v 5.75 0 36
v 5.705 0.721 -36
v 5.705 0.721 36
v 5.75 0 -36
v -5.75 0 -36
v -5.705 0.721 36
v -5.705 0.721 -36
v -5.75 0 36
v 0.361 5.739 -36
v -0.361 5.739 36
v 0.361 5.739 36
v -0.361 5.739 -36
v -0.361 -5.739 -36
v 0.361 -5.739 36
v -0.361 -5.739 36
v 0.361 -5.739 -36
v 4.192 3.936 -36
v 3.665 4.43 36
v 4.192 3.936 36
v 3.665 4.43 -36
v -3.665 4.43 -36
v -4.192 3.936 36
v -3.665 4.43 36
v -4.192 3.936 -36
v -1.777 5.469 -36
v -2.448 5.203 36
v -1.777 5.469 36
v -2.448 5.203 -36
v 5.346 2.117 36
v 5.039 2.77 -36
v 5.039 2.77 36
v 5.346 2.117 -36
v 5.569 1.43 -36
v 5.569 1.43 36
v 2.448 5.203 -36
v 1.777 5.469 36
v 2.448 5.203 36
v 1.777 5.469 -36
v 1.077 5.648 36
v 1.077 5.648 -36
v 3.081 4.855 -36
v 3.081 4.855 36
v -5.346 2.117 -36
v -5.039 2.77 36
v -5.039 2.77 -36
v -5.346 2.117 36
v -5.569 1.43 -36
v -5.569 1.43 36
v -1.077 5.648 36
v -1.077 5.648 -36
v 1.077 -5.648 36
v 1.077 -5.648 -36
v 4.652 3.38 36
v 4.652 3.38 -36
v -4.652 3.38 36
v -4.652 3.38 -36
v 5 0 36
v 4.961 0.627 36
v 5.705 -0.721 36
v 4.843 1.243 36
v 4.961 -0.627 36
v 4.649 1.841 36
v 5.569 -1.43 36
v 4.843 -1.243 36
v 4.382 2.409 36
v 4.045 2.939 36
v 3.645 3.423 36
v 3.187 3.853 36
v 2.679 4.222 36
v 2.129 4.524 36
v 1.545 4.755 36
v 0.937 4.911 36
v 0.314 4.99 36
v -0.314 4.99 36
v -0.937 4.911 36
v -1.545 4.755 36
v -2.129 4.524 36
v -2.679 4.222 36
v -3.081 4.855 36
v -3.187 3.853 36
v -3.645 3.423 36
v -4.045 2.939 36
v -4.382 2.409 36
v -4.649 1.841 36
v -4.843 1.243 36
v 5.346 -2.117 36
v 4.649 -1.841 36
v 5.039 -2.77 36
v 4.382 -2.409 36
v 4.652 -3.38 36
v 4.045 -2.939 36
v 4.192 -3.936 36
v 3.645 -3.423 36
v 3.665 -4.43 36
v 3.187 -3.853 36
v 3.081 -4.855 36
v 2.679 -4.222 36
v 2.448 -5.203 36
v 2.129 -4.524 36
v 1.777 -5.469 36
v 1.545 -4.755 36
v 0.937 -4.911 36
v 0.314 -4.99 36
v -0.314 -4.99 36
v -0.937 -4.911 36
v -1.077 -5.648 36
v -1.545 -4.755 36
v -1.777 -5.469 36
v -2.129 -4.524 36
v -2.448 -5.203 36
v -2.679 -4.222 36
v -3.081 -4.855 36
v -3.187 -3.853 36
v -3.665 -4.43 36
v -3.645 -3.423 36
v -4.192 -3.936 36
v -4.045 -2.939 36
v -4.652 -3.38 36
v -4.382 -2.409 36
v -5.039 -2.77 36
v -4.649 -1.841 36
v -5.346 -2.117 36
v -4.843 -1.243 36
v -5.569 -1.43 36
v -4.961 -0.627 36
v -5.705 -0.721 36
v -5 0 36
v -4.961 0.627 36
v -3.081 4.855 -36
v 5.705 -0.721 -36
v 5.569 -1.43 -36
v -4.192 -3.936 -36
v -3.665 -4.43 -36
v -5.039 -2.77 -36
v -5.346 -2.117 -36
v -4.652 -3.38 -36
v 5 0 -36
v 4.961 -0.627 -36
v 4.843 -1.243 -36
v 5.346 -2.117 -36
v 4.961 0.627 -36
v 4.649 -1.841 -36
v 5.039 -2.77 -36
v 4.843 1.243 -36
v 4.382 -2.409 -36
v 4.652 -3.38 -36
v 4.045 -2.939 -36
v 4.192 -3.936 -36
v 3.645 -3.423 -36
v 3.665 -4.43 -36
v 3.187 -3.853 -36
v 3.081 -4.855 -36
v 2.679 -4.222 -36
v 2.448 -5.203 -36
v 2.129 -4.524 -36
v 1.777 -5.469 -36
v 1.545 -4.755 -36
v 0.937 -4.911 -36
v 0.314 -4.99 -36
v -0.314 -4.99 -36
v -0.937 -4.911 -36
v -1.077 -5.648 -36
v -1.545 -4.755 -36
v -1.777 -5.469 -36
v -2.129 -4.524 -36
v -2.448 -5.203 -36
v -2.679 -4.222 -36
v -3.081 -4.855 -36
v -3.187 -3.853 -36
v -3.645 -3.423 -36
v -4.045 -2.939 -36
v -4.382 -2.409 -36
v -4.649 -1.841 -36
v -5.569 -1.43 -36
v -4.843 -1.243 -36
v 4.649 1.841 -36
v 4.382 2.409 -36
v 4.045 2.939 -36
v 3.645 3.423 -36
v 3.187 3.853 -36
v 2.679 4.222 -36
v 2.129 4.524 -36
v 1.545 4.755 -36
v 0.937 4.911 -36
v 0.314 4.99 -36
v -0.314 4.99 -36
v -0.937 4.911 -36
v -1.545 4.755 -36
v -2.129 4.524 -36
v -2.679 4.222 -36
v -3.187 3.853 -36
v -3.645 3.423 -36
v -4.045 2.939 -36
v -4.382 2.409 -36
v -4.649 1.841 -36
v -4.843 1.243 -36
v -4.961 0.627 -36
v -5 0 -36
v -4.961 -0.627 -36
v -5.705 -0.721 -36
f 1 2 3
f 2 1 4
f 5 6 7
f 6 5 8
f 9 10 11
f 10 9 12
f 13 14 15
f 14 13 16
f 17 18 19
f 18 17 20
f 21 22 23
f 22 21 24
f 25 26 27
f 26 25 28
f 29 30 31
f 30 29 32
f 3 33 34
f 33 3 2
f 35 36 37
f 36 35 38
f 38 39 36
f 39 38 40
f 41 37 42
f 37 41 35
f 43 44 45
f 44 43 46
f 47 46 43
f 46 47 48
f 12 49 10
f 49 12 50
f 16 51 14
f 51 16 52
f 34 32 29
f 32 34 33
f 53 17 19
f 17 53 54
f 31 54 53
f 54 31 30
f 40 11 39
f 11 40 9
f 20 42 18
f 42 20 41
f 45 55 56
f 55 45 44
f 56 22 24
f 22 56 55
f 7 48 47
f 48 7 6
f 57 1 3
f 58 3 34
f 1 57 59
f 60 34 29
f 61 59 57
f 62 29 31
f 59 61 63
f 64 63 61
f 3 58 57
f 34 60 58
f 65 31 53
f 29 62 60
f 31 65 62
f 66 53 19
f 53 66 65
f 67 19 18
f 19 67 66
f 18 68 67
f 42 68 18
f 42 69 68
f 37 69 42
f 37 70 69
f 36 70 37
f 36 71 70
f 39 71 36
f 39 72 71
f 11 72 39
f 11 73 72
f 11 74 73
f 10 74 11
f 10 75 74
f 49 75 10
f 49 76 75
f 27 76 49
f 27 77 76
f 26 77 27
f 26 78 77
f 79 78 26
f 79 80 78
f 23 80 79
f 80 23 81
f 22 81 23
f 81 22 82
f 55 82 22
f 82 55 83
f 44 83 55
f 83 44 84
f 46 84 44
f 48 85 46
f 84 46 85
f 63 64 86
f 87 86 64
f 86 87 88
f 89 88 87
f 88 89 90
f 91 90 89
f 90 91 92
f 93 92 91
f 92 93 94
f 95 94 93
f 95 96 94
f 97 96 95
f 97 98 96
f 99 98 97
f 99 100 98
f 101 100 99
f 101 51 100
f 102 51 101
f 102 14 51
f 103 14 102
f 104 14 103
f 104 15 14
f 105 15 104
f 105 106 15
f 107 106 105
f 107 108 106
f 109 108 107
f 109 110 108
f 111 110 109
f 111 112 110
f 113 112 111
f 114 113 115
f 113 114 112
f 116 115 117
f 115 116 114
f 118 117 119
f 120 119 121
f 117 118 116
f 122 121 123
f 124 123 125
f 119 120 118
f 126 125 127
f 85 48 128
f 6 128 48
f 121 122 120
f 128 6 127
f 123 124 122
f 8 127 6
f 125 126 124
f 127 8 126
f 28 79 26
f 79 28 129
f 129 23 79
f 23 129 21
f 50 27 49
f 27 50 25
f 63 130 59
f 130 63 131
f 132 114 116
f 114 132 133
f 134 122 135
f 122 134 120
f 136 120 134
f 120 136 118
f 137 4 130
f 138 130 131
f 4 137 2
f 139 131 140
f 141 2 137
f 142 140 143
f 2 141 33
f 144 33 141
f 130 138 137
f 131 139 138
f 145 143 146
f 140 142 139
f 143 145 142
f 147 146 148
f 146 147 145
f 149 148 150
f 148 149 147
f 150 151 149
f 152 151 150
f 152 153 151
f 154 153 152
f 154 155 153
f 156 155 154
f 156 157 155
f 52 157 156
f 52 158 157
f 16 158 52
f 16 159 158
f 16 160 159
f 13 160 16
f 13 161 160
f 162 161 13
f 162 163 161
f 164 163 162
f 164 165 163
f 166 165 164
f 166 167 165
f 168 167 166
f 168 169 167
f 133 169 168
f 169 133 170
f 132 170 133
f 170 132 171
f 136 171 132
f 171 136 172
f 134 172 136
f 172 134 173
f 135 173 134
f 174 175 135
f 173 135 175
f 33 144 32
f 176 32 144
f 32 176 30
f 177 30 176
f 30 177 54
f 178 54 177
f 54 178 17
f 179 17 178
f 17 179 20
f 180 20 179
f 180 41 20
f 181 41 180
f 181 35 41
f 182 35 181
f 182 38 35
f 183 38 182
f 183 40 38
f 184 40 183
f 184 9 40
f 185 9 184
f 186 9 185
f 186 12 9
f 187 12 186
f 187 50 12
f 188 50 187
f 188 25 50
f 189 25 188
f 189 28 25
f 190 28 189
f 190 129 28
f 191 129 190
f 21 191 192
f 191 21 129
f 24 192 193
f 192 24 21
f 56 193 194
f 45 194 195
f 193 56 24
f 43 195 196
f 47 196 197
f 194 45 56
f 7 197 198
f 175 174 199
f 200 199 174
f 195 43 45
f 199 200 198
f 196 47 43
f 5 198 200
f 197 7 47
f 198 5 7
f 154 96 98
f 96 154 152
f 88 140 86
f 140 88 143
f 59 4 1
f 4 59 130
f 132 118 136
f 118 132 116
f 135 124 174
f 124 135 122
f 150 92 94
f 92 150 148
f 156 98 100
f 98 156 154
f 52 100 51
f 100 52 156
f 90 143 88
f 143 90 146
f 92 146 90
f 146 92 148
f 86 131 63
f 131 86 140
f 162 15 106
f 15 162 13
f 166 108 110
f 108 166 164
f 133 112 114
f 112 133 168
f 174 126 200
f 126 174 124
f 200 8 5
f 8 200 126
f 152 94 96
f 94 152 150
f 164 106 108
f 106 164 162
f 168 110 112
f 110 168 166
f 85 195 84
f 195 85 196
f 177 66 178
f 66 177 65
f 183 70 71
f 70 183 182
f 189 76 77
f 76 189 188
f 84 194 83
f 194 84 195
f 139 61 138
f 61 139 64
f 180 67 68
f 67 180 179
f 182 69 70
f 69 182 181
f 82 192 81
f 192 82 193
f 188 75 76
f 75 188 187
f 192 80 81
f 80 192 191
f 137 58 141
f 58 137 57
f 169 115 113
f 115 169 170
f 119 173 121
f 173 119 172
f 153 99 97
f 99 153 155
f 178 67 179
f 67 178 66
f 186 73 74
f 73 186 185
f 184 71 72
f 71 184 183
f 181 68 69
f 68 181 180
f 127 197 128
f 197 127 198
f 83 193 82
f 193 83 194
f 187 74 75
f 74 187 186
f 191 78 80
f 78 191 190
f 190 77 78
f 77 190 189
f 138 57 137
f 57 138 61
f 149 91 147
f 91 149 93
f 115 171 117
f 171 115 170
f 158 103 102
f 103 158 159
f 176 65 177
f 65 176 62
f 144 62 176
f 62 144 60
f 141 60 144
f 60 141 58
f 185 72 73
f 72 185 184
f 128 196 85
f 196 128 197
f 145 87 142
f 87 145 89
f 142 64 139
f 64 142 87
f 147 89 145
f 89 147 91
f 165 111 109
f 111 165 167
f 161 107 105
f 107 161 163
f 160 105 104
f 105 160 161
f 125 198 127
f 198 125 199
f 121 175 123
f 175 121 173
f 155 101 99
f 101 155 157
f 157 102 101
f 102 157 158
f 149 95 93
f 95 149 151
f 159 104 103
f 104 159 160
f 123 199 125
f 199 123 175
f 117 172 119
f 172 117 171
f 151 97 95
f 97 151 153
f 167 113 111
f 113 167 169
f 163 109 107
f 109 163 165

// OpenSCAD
$fn = 50;


difference() {
	union() {
		translate(v = [0, 0, -36.0000000000]) {
			cylinder(h = 72, r = 5.7500000000);
		}
	}
	union() {
		translate(v = [0, 0, -100.0000000000]) {
			cylinder(h = 200, r = 5.0000000000);
		}
	}
}
